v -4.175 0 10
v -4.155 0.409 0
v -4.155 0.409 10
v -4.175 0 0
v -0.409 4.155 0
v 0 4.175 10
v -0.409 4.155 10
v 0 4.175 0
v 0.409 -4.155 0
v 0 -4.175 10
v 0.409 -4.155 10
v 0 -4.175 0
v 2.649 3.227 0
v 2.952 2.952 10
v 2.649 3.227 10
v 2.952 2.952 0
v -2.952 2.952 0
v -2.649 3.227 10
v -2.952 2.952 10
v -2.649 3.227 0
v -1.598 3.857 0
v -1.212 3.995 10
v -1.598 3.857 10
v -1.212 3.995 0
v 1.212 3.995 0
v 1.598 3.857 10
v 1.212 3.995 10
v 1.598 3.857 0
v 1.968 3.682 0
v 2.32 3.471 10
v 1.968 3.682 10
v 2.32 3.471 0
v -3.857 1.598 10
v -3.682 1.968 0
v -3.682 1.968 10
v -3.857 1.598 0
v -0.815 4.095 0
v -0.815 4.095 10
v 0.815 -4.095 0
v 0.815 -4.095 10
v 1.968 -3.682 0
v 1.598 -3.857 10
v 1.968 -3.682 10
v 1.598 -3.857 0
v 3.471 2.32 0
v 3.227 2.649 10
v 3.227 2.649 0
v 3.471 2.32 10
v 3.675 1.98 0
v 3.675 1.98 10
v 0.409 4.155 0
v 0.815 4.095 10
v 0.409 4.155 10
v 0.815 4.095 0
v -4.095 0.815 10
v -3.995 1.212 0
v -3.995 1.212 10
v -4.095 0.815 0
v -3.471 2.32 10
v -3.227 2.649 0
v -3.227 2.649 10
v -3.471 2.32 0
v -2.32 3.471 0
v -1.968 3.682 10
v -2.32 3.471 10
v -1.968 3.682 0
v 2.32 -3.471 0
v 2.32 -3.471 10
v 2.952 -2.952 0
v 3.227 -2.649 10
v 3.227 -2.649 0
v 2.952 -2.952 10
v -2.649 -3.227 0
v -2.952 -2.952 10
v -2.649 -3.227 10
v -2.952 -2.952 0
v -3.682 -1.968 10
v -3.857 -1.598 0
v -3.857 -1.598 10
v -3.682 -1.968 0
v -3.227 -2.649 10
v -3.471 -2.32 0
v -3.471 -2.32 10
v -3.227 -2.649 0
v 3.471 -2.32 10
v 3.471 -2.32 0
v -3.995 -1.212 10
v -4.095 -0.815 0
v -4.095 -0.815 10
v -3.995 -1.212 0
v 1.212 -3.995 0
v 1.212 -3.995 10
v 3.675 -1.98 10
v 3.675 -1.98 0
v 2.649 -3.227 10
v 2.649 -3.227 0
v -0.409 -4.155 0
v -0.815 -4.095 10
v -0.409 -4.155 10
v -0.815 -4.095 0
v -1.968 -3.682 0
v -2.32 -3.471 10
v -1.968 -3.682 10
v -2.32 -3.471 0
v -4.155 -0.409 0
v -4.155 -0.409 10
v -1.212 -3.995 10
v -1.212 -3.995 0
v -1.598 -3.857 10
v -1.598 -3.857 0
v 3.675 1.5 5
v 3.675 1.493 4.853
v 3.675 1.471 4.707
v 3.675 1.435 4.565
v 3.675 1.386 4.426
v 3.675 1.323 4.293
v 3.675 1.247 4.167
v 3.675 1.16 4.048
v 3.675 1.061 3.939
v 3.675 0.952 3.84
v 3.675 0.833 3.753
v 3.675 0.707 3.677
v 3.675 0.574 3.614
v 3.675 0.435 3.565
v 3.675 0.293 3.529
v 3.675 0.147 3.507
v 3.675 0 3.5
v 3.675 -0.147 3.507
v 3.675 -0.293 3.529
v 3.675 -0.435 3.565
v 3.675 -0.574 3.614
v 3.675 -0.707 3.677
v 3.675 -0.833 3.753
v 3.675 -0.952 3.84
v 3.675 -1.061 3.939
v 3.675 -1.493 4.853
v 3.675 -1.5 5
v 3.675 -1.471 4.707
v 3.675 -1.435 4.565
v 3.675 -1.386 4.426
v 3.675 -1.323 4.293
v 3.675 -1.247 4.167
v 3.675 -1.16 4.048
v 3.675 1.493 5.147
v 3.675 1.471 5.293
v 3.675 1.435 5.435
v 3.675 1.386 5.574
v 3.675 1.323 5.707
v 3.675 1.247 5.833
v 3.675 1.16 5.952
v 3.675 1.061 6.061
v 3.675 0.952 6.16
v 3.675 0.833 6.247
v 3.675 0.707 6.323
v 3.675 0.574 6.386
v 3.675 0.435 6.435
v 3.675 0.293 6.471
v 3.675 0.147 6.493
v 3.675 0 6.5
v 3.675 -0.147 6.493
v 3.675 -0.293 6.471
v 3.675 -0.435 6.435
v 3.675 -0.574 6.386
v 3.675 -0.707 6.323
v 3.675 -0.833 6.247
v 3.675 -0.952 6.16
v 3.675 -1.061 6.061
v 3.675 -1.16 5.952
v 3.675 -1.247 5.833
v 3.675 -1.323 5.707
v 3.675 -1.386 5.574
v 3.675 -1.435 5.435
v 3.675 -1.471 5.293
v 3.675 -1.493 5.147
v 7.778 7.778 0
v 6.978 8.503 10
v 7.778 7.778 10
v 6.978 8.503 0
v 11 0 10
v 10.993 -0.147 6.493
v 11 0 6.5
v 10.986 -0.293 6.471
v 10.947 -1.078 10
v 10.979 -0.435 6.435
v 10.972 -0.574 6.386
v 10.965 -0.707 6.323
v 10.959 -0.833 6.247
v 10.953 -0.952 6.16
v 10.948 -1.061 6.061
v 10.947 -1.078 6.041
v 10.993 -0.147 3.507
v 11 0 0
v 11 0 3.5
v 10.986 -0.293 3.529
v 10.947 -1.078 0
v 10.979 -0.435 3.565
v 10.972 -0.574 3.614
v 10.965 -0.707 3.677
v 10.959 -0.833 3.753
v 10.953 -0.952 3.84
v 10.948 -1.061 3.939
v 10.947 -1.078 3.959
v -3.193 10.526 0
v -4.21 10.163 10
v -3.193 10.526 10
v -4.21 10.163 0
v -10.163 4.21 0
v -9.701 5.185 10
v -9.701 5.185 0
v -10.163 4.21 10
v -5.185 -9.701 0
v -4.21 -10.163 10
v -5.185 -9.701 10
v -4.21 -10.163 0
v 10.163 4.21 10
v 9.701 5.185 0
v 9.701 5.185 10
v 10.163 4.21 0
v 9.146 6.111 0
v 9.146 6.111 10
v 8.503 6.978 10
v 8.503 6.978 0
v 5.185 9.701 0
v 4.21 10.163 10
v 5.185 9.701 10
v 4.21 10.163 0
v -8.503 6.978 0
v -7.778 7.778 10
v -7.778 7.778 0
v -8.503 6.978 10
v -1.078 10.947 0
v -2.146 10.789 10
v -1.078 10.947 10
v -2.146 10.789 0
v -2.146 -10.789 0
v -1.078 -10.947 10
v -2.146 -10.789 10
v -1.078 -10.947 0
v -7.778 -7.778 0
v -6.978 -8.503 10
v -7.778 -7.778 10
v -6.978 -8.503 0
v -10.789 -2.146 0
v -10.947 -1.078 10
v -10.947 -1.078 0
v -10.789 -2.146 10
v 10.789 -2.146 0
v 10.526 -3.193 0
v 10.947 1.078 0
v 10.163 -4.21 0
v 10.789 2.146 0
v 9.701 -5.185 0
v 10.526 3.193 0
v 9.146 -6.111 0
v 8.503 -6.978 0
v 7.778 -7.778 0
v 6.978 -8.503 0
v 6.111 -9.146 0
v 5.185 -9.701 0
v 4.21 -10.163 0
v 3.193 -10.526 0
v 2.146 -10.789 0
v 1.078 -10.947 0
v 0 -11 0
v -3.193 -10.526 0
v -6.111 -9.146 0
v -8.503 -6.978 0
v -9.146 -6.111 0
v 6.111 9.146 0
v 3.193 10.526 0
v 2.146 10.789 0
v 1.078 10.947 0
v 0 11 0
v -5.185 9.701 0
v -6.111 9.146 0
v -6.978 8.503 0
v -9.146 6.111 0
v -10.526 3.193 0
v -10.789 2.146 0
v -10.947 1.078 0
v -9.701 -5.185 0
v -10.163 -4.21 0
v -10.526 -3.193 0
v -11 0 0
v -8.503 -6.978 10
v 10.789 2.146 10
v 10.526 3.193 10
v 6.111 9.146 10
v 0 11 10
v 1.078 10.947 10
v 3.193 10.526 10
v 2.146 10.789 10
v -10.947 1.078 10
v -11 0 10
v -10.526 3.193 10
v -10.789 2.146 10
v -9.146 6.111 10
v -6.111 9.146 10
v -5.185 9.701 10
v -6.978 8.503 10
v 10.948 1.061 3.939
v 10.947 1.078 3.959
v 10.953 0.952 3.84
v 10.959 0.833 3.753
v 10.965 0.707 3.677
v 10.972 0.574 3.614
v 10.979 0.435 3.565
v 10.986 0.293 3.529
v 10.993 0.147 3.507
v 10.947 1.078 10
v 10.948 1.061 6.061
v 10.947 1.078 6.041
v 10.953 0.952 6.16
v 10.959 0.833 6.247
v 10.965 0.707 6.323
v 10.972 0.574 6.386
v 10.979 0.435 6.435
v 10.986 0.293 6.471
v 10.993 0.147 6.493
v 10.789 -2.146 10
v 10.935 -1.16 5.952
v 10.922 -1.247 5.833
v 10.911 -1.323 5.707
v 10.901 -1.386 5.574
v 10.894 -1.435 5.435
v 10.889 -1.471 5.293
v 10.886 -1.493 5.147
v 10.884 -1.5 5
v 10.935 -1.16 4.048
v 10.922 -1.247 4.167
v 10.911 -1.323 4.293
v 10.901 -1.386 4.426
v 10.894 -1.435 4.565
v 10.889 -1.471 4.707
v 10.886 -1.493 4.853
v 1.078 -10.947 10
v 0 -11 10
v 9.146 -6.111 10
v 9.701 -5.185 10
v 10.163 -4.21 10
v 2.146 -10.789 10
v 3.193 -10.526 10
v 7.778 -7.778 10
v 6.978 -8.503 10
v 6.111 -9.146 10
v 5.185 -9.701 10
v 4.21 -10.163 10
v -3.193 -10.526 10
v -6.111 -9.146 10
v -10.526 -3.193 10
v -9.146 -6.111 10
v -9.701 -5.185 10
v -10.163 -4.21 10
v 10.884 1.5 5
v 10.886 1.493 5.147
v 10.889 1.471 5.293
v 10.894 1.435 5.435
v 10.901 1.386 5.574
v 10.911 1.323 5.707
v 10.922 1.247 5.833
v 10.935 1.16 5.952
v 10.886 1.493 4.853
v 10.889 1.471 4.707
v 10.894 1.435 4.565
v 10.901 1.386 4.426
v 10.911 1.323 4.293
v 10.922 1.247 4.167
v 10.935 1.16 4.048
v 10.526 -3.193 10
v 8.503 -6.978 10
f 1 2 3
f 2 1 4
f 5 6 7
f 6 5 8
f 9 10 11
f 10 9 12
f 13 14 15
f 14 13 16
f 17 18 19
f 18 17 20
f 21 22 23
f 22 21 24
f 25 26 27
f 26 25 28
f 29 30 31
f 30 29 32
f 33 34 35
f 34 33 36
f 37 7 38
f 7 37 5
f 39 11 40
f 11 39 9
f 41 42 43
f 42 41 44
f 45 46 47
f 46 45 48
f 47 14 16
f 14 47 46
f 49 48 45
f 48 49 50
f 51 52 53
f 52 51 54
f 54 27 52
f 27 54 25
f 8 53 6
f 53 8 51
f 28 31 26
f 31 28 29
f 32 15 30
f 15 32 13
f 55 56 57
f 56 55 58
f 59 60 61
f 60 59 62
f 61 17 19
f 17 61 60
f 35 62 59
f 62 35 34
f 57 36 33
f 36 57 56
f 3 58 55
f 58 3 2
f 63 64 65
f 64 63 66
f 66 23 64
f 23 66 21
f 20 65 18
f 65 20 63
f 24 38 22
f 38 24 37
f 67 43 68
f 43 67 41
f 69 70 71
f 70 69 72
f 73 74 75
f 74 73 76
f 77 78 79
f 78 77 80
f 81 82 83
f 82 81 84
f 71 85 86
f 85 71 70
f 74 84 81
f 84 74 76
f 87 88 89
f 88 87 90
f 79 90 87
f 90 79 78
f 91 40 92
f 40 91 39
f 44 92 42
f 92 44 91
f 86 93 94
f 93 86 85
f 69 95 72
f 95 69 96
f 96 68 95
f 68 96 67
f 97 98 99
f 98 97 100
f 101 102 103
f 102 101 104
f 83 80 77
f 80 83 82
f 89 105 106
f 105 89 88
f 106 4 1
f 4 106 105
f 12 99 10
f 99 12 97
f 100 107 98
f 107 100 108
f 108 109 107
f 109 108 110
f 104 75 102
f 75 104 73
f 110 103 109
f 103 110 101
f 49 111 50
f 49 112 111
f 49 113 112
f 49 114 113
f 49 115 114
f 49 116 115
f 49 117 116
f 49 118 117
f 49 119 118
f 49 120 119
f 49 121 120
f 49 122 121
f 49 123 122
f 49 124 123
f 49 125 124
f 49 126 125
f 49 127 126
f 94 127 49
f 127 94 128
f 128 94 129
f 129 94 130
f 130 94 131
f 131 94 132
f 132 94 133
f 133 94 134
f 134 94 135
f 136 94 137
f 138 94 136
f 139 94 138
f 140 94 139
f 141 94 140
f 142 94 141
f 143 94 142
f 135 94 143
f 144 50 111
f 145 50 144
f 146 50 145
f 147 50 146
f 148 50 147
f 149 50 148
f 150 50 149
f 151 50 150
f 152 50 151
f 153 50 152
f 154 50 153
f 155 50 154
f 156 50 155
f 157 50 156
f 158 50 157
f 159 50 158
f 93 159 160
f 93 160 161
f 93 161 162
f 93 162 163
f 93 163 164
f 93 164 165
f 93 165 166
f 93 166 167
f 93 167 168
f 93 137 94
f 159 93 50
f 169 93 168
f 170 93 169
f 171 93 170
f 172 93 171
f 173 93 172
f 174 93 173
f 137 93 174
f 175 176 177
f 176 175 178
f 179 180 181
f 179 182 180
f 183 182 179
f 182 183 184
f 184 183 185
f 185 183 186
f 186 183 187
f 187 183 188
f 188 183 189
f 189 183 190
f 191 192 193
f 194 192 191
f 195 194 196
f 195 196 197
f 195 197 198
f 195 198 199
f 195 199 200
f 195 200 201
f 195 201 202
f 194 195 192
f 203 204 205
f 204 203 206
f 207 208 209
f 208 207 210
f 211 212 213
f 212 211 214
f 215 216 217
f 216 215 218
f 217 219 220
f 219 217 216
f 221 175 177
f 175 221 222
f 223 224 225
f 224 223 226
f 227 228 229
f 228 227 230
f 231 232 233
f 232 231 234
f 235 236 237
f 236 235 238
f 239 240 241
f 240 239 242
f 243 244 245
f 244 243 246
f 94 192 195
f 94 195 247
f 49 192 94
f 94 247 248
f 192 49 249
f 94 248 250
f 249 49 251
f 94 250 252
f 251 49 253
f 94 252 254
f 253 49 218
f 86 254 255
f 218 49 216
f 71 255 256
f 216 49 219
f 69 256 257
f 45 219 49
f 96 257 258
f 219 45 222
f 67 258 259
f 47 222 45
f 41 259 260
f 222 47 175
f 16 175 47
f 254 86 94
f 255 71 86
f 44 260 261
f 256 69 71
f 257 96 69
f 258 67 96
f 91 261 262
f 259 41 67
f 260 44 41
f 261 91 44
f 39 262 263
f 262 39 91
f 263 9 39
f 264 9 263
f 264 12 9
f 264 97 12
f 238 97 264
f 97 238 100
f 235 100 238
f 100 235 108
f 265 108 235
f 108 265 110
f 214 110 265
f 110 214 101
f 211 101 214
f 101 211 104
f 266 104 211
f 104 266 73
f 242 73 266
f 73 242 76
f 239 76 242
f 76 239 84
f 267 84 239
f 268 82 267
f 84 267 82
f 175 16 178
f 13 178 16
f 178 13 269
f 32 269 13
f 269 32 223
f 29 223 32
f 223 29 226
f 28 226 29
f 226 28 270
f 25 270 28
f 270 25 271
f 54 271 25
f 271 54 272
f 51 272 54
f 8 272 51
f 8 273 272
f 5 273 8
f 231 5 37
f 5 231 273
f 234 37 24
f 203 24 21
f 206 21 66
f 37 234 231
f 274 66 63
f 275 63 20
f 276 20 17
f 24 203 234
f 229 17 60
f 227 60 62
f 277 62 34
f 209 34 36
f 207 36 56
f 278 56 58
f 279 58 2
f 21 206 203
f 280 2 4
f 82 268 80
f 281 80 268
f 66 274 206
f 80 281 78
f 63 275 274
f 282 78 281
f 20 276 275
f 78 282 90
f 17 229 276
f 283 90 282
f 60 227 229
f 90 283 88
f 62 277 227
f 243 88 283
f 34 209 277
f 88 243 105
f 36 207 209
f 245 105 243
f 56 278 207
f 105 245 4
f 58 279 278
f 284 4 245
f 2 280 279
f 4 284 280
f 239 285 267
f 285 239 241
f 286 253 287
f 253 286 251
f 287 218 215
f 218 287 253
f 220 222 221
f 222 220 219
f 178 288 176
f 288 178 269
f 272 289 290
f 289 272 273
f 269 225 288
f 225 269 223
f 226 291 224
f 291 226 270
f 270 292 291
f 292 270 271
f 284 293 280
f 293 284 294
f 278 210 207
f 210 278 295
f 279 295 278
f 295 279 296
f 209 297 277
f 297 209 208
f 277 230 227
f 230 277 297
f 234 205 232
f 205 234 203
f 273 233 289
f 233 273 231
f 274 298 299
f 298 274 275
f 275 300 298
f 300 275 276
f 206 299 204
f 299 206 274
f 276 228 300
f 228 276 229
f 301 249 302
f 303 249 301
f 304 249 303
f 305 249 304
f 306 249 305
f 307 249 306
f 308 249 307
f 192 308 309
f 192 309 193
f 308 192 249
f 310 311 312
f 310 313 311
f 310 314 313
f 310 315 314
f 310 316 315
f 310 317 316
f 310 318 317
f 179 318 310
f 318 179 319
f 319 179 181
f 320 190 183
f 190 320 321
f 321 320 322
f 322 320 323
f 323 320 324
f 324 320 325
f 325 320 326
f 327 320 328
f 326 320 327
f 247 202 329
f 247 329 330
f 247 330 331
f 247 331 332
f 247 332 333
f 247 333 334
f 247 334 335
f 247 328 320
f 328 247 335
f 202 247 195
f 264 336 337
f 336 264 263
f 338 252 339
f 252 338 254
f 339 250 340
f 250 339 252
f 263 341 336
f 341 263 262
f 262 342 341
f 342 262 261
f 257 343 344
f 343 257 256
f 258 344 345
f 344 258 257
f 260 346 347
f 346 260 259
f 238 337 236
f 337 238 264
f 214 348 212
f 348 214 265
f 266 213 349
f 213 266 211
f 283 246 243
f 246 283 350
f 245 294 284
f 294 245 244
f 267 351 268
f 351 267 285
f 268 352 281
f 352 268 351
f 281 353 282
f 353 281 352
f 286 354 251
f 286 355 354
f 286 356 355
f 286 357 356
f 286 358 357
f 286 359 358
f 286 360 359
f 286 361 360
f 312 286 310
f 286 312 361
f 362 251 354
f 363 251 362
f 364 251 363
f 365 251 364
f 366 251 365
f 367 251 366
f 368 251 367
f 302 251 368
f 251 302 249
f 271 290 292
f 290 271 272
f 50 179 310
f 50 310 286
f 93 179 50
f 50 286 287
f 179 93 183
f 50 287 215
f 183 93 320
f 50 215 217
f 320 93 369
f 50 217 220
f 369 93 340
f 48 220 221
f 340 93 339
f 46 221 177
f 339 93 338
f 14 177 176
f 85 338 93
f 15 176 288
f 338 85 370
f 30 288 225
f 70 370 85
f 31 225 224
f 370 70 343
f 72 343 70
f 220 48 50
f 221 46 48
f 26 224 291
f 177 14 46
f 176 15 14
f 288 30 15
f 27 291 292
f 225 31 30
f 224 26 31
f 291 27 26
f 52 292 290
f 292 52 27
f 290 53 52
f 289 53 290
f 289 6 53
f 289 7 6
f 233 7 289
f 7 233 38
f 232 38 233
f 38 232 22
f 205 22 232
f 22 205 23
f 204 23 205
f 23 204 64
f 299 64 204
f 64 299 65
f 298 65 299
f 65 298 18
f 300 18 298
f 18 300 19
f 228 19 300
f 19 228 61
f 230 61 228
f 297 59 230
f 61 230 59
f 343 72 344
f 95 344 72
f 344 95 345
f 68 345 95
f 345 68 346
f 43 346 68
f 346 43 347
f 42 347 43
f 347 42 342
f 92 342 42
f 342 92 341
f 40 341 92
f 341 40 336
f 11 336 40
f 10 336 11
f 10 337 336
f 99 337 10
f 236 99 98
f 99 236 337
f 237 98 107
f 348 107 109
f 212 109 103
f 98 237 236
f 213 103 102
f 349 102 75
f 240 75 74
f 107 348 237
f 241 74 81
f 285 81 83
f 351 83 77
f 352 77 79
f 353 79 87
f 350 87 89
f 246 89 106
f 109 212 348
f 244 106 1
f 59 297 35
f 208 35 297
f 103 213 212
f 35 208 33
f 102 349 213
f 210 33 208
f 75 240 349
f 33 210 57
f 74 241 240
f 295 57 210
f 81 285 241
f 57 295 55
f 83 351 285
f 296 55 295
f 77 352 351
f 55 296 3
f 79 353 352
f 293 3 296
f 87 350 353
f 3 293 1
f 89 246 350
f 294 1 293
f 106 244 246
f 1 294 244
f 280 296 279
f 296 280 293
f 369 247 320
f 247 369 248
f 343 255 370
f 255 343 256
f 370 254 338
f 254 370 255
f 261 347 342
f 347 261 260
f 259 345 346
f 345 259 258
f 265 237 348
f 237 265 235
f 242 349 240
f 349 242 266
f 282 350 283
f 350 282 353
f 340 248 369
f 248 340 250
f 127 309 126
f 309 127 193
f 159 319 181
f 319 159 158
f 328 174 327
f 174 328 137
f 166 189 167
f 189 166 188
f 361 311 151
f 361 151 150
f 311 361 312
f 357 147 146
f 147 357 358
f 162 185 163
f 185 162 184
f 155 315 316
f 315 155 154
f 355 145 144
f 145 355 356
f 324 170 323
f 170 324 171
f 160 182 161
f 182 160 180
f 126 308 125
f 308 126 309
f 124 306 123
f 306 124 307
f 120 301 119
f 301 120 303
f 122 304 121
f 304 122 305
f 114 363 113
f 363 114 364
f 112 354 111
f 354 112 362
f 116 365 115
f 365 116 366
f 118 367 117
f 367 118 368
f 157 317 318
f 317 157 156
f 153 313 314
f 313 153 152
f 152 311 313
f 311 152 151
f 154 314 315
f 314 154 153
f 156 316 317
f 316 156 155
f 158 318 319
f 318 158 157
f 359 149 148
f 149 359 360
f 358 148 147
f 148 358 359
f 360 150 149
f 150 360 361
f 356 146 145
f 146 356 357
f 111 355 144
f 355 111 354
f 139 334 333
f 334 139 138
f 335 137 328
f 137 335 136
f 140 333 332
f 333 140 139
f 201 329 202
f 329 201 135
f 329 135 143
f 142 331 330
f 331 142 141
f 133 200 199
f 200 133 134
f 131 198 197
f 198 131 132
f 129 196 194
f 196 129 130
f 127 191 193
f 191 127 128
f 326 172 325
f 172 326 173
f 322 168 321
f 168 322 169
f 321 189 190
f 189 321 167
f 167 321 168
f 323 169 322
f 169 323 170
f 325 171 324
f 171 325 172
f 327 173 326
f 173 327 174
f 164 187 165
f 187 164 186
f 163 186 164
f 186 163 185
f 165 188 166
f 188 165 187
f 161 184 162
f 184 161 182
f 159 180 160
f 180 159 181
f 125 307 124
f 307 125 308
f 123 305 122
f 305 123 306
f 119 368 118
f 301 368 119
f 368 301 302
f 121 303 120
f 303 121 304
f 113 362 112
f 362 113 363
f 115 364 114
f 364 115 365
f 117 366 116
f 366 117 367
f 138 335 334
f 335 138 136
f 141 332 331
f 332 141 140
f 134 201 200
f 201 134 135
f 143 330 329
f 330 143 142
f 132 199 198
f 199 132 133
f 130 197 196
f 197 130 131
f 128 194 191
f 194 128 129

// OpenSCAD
// Gen-CS — shaft collar with D-flat bore (set screw bears on the flat); print x4
include <parameters.scad>;
$fn = 64;
// D-flat keyed bore: flat faces +X (angle 0 = magnet pocket 0 = index notch)
module dflat_bore(h) {
    intersection() {
        cylinder(d=shaft_bore, h=h);
        translate([-shaft_bore, -shaft_bore, 0]) cube([shaft_bore + dflat_x, 2*shaft_bore, h]);
    }
}

od = 22; h = collar_h; set_d = 3.0;
difference() {
    cylinder(d=od, h=h);
    translate([0, 0, -0.1]) dflat_bore(h + 0.2);
    translate([0, 0, h/2]) rotate([0, 90, 0]) cylinder(d=set_d, h=od);
}
